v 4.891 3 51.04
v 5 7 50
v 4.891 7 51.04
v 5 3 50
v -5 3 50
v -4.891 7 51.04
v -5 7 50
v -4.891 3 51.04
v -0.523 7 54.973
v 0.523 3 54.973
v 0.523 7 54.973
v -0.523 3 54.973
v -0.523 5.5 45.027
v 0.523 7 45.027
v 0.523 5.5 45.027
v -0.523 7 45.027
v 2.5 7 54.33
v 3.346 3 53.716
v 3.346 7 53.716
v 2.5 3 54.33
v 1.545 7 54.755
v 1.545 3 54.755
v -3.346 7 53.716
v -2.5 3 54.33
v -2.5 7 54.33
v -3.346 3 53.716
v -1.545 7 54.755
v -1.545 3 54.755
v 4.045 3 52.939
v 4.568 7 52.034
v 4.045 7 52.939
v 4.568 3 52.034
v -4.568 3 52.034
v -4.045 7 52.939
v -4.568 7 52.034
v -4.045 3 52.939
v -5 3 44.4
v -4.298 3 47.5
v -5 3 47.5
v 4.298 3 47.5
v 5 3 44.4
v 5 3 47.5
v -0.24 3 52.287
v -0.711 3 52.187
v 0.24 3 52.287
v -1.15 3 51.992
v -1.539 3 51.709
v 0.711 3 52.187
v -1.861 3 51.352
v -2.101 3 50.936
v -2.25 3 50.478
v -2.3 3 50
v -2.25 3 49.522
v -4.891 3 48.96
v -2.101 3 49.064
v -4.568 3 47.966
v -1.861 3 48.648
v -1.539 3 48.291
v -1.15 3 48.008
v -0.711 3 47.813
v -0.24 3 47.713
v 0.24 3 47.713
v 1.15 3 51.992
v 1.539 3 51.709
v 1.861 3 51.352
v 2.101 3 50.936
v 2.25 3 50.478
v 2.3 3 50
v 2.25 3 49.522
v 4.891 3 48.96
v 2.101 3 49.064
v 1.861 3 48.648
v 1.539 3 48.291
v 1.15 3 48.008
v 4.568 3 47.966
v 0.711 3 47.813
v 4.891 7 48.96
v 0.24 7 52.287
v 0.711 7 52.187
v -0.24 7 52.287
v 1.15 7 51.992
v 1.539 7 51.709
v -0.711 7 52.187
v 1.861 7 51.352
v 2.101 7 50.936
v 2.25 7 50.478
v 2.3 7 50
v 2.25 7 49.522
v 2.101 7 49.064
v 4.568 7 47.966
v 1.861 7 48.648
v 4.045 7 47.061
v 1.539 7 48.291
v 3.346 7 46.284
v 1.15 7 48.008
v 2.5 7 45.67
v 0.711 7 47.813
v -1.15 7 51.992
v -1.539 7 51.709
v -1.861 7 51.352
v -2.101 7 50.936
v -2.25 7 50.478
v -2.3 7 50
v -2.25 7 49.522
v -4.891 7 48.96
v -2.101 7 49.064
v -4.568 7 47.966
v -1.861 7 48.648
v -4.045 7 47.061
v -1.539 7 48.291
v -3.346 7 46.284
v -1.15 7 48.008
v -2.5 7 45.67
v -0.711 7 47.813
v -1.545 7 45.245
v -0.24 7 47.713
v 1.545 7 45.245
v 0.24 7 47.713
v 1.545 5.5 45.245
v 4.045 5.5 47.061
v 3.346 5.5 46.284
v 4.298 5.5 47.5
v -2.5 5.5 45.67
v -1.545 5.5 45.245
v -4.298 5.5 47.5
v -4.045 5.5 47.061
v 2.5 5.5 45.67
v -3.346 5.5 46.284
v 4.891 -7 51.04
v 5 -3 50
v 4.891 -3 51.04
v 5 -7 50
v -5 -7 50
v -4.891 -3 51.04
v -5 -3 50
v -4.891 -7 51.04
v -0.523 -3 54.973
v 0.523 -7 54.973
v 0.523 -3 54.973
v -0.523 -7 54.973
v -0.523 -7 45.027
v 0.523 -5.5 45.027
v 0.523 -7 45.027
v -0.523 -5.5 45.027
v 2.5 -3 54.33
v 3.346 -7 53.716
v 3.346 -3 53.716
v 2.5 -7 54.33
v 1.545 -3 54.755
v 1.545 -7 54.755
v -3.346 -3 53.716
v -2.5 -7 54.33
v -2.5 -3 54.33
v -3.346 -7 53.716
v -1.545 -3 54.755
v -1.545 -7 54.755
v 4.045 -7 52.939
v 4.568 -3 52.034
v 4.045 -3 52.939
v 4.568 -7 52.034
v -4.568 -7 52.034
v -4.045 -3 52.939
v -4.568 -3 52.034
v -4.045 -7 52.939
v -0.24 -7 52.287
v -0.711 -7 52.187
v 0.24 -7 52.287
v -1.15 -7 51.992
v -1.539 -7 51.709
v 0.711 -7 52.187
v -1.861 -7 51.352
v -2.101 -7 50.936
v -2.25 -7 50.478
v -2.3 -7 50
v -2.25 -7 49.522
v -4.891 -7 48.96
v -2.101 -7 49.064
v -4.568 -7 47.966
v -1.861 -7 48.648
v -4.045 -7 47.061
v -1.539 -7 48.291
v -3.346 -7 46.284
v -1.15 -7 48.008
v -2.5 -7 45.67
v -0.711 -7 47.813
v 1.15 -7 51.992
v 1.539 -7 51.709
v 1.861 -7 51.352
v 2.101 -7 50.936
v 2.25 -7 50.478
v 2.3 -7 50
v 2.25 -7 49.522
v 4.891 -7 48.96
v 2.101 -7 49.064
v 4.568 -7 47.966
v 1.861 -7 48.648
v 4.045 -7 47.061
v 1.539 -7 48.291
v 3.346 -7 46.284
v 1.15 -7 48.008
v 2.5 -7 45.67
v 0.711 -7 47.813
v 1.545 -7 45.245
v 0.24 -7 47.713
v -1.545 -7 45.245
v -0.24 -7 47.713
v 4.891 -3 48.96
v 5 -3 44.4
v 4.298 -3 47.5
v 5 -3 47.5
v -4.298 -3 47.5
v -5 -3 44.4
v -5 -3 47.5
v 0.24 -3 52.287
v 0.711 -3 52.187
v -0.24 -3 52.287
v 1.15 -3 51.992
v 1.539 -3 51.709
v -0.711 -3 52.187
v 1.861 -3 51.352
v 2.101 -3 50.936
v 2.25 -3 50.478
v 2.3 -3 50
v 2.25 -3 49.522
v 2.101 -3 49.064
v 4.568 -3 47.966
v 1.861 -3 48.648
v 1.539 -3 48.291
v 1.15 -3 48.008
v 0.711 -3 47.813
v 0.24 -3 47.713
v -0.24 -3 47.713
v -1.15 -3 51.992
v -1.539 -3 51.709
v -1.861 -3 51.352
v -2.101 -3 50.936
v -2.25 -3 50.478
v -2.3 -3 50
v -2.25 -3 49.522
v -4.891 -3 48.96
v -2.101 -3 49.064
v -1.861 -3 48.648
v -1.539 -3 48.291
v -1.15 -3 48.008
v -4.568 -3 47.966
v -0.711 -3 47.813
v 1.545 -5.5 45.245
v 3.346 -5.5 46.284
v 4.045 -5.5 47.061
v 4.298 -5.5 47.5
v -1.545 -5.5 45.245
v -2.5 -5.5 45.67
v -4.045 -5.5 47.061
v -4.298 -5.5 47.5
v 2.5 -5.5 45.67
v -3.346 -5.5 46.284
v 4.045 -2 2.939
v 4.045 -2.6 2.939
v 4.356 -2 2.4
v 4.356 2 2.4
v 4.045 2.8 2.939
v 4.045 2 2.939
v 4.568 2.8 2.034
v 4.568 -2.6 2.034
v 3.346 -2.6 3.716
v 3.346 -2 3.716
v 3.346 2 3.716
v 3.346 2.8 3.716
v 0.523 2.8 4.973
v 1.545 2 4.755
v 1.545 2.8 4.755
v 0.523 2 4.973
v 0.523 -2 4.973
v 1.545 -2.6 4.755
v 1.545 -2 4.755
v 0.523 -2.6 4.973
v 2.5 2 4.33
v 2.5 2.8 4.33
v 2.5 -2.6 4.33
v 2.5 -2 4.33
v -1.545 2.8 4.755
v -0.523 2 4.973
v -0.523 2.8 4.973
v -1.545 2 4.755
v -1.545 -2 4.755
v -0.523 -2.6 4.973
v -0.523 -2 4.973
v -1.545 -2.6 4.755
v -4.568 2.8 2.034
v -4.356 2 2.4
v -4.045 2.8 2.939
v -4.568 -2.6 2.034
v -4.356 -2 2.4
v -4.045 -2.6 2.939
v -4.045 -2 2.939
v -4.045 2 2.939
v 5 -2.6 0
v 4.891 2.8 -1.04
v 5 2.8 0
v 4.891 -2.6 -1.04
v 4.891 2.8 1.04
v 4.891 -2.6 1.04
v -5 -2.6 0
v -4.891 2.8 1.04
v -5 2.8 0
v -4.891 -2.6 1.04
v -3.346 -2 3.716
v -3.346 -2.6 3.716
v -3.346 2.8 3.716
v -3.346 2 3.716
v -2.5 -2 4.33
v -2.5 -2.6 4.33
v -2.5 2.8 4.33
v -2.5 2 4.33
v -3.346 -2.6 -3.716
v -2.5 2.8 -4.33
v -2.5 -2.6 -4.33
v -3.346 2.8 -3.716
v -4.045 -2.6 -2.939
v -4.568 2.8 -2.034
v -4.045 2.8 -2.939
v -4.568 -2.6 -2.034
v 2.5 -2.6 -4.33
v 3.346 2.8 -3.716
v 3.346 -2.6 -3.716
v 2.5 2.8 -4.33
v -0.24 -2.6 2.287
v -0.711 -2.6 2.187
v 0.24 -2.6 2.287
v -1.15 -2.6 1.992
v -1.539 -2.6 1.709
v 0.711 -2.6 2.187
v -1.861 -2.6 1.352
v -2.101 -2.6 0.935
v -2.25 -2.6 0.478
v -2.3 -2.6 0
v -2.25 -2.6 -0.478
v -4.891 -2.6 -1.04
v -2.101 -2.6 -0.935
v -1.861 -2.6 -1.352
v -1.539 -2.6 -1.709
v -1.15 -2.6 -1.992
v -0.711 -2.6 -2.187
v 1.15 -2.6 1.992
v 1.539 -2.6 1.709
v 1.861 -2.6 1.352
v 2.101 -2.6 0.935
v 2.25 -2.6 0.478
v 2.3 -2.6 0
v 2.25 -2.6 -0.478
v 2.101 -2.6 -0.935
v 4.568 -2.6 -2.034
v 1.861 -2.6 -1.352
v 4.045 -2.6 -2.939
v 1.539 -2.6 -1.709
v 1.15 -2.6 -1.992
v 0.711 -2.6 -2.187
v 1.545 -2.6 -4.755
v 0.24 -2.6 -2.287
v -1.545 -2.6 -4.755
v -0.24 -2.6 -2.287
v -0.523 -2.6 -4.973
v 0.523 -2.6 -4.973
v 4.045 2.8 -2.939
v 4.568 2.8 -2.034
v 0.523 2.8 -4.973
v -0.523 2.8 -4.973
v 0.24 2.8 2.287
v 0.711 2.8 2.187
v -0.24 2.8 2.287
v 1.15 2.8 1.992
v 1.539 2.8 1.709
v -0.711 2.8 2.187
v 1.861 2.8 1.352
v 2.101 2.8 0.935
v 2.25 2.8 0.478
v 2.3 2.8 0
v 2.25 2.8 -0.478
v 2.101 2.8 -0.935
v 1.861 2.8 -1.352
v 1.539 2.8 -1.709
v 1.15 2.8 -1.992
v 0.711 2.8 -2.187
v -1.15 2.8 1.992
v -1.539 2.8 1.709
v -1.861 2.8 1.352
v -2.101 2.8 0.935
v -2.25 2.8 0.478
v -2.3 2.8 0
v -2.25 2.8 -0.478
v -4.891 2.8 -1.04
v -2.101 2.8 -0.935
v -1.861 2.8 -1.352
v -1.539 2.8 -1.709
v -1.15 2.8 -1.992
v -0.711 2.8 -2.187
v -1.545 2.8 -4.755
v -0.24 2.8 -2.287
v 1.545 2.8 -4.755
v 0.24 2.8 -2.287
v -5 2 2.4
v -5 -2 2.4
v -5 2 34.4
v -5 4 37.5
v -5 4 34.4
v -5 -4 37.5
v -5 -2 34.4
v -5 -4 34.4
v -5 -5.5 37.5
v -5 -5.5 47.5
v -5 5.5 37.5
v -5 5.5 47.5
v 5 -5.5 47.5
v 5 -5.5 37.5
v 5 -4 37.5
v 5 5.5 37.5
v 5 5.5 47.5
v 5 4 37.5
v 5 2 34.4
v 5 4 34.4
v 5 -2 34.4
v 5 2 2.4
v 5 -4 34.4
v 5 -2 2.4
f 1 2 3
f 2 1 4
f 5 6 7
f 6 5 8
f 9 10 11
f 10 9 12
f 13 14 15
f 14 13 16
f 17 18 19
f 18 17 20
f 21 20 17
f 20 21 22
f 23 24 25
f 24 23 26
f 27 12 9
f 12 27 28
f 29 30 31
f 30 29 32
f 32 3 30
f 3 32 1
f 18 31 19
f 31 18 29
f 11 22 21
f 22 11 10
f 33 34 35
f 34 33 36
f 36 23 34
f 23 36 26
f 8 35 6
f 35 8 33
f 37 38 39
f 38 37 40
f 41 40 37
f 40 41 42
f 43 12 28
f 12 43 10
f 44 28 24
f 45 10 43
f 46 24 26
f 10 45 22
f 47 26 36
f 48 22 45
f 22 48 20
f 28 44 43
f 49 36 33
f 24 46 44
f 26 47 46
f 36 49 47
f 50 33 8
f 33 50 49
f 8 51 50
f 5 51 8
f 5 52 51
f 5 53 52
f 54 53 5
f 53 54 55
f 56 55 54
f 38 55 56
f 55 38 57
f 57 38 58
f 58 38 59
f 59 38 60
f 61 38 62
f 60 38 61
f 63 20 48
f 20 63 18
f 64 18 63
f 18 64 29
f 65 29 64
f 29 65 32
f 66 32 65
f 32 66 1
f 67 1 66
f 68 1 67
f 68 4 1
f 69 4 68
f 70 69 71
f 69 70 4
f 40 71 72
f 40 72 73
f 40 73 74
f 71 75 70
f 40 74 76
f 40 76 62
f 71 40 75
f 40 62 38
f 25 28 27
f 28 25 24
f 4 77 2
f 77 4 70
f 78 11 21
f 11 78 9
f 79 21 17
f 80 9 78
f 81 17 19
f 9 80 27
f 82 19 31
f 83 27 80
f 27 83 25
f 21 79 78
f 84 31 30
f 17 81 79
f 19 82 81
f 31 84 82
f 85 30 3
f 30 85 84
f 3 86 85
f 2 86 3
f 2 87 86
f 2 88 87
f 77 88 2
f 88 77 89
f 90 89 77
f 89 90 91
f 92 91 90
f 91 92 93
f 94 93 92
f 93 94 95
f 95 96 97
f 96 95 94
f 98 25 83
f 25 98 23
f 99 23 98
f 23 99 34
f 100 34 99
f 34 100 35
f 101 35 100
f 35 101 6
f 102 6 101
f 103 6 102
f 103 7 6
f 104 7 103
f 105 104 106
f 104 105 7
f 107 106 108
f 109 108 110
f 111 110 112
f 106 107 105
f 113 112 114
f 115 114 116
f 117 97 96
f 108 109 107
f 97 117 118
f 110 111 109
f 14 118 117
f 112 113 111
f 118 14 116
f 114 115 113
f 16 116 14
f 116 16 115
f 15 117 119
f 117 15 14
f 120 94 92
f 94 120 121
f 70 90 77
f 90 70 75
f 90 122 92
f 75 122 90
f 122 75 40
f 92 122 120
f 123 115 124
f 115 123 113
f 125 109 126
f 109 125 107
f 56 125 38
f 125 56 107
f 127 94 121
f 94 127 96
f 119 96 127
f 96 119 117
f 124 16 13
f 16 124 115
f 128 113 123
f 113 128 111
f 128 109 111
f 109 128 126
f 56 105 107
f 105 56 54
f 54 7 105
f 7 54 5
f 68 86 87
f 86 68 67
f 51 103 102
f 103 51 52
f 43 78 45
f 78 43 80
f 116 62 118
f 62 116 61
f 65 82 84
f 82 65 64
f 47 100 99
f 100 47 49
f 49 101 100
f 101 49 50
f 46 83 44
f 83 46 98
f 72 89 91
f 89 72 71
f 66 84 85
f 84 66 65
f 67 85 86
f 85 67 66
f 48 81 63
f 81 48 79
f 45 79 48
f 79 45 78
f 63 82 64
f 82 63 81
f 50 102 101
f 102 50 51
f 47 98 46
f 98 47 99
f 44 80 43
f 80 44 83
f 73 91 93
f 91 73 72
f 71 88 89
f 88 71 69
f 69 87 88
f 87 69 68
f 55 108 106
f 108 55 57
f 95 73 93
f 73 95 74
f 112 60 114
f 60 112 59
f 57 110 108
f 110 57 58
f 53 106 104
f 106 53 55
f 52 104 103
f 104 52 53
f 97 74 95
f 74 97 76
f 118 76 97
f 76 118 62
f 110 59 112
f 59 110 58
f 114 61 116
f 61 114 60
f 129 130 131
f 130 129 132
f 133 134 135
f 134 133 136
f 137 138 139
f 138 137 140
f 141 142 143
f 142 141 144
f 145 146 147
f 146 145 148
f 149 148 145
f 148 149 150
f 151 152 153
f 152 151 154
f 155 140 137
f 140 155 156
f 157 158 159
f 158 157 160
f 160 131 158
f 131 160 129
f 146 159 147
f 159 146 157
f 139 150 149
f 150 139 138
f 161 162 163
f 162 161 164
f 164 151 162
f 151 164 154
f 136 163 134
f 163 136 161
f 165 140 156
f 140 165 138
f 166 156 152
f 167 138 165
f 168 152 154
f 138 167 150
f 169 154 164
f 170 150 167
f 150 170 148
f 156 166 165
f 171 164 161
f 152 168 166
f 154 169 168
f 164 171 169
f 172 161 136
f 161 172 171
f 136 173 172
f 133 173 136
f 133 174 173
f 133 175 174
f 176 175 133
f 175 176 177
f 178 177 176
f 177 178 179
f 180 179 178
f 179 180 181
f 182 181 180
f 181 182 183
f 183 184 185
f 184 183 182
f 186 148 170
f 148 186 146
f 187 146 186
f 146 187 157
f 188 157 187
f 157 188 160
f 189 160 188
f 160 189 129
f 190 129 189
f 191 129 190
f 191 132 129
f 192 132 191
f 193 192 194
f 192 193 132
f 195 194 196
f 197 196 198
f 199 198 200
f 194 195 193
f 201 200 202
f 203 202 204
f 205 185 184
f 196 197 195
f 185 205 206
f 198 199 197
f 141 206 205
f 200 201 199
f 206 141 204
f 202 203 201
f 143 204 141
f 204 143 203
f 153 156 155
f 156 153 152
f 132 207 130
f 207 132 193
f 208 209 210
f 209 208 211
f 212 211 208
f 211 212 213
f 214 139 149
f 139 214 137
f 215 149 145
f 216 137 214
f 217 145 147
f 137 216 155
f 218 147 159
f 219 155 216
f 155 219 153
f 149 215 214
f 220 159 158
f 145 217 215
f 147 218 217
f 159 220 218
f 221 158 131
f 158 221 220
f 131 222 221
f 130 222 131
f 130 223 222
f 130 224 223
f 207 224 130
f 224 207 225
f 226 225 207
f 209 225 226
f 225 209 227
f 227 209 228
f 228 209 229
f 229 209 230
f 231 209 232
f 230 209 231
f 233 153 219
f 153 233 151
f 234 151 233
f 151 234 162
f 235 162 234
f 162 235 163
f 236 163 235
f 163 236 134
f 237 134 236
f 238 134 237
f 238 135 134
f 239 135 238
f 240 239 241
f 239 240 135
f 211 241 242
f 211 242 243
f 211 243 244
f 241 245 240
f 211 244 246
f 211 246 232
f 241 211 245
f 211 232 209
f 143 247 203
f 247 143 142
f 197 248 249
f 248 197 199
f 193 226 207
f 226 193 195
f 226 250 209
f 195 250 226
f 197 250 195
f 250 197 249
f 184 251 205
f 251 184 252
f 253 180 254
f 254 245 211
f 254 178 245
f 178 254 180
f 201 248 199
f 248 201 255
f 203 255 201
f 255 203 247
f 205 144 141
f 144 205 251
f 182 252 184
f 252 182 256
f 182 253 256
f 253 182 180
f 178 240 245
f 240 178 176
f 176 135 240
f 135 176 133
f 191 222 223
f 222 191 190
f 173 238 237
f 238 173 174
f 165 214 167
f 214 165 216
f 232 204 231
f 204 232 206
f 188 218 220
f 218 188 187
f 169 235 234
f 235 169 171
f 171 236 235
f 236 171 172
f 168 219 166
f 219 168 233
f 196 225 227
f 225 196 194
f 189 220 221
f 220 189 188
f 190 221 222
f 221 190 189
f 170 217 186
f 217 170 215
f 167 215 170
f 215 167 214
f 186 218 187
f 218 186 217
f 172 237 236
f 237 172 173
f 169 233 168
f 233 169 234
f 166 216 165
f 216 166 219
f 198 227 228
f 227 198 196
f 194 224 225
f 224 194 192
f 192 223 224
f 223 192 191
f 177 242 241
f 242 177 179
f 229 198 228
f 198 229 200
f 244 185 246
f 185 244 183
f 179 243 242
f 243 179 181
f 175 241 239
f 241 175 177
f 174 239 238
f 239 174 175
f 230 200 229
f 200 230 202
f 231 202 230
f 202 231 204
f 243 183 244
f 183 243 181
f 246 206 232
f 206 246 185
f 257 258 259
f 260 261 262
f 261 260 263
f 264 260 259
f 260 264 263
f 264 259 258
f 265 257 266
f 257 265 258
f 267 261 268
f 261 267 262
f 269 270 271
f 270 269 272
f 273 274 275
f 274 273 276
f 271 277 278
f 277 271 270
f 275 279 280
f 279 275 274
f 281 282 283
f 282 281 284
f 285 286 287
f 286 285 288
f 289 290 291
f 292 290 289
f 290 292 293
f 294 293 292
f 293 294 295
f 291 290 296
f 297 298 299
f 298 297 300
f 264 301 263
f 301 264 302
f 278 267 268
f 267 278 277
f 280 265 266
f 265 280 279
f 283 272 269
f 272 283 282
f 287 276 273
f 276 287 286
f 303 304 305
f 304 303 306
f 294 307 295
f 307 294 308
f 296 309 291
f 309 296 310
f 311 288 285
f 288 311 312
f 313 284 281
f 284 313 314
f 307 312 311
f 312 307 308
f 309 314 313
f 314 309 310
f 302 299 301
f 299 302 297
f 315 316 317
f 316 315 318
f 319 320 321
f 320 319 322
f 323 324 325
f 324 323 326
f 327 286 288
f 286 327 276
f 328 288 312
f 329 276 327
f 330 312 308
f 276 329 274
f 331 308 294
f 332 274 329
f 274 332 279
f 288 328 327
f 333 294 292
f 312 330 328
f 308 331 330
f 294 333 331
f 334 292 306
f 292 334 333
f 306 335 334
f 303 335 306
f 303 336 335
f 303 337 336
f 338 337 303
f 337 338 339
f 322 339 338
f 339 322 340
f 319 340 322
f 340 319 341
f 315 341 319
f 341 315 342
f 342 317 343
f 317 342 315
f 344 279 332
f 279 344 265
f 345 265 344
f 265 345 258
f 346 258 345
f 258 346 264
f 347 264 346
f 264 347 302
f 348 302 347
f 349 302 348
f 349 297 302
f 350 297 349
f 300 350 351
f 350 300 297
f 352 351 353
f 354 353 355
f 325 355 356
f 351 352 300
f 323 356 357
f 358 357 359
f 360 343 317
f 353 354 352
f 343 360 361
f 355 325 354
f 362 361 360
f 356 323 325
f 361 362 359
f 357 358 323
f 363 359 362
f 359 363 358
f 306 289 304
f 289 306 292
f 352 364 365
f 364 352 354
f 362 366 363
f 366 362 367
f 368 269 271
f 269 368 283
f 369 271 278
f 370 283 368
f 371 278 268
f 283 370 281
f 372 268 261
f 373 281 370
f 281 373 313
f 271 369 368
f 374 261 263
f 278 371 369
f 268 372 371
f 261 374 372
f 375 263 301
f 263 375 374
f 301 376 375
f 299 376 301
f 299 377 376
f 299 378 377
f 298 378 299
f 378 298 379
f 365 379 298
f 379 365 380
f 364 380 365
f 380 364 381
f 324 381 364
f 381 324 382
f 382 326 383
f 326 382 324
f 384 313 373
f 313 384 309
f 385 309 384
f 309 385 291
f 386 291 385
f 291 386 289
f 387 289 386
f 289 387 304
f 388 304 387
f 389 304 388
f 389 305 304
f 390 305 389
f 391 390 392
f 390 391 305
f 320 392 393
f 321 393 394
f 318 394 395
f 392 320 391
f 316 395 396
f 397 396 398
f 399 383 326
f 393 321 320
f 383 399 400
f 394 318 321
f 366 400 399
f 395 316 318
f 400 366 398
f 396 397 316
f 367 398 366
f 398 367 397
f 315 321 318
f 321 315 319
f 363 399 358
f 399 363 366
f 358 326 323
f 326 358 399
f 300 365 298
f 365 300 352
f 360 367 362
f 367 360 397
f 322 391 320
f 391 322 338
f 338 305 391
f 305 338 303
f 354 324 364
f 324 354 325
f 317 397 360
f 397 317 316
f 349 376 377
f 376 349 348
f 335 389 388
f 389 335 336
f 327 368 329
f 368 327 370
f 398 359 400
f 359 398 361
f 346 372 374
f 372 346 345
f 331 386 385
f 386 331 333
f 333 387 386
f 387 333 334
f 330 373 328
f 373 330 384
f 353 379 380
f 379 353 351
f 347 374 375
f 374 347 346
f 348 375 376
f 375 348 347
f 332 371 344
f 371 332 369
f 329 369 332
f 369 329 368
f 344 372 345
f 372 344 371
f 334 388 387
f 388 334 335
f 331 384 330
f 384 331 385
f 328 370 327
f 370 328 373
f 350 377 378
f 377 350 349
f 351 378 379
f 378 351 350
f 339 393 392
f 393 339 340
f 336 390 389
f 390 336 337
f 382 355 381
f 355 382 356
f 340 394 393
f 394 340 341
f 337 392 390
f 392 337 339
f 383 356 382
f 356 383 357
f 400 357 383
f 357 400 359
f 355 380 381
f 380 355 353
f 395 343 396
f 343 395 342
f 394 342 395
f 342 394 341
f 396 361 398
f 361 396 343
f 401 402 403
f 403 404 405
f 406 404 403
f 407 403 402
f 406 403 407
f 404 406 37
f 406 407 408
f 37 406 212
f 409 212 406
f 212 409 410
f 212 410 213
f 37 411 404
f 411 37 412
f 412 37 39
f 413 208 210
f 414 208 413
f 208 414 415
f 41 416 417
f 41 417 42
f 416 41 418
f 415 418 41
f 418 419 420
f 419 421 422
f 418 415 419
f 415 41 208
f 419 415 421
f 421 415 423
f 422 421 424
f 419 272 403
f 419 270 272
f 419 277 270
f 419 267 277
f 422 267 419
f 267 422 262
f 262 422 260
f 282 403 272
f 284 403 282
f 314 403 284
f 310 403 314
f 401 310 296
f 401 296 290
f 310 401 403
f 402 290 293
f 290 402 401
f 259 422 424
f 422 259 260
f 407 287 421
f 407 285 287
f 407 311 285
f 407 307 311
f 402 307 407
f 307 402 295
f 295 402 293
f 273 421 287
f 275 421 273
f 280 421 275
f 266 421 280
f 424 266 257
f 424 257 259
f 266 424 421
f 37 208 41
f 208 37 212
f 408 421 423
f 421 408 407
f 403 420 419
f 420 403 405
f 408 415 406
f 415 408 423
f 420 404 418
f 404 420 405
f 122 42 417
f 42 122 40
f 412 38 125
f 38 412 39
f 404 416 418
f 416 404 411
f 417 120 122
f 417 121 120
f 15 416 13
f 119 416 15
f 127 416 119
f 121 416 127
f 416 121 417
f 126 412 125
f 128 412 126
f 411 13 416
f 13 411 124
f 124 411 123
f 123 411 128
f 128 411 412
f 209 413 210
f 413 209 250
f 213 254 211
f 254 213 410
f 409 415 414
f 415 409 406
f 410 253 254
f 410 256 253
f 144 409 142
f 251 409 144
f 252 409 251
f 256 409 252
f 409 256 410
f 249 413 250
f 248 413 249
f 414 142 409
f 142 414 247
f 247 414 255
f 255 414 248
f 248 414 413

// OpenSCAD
translate([0,2.8,0])
rotate([90,0,0])
difference() {
	cylinder(5.4,5,5, $fn=30);
	cylinder(7,2.3,2.3, $fn=30);
}


//long
translate([-5,-2,2.4])
	scale([1,0.4,4])
		cube(10);
translate([-5,-4,34.4])
	scale([1,0.8,1])
		cube(10);

//right
translate([0,7,50])
rotate([90,0,0])
difference() {
	cylinder(4,5,5, $fn=30);
	cylinder(4,2.3,2.3, $fn=30);
}
translate([-5,3,37.5])
	scale([1,0.25,1])
		cube(10);

//left
translate([0,-3,50])
rotate([90,0,0])
difference() {
	cylinder(4,5,5, $fn=30);
	cylinder(4,2.3,2.3, $fn=30);
}

translate([-5,-5.5,37.5])
scale([1,0.25,1])
cube(10);
